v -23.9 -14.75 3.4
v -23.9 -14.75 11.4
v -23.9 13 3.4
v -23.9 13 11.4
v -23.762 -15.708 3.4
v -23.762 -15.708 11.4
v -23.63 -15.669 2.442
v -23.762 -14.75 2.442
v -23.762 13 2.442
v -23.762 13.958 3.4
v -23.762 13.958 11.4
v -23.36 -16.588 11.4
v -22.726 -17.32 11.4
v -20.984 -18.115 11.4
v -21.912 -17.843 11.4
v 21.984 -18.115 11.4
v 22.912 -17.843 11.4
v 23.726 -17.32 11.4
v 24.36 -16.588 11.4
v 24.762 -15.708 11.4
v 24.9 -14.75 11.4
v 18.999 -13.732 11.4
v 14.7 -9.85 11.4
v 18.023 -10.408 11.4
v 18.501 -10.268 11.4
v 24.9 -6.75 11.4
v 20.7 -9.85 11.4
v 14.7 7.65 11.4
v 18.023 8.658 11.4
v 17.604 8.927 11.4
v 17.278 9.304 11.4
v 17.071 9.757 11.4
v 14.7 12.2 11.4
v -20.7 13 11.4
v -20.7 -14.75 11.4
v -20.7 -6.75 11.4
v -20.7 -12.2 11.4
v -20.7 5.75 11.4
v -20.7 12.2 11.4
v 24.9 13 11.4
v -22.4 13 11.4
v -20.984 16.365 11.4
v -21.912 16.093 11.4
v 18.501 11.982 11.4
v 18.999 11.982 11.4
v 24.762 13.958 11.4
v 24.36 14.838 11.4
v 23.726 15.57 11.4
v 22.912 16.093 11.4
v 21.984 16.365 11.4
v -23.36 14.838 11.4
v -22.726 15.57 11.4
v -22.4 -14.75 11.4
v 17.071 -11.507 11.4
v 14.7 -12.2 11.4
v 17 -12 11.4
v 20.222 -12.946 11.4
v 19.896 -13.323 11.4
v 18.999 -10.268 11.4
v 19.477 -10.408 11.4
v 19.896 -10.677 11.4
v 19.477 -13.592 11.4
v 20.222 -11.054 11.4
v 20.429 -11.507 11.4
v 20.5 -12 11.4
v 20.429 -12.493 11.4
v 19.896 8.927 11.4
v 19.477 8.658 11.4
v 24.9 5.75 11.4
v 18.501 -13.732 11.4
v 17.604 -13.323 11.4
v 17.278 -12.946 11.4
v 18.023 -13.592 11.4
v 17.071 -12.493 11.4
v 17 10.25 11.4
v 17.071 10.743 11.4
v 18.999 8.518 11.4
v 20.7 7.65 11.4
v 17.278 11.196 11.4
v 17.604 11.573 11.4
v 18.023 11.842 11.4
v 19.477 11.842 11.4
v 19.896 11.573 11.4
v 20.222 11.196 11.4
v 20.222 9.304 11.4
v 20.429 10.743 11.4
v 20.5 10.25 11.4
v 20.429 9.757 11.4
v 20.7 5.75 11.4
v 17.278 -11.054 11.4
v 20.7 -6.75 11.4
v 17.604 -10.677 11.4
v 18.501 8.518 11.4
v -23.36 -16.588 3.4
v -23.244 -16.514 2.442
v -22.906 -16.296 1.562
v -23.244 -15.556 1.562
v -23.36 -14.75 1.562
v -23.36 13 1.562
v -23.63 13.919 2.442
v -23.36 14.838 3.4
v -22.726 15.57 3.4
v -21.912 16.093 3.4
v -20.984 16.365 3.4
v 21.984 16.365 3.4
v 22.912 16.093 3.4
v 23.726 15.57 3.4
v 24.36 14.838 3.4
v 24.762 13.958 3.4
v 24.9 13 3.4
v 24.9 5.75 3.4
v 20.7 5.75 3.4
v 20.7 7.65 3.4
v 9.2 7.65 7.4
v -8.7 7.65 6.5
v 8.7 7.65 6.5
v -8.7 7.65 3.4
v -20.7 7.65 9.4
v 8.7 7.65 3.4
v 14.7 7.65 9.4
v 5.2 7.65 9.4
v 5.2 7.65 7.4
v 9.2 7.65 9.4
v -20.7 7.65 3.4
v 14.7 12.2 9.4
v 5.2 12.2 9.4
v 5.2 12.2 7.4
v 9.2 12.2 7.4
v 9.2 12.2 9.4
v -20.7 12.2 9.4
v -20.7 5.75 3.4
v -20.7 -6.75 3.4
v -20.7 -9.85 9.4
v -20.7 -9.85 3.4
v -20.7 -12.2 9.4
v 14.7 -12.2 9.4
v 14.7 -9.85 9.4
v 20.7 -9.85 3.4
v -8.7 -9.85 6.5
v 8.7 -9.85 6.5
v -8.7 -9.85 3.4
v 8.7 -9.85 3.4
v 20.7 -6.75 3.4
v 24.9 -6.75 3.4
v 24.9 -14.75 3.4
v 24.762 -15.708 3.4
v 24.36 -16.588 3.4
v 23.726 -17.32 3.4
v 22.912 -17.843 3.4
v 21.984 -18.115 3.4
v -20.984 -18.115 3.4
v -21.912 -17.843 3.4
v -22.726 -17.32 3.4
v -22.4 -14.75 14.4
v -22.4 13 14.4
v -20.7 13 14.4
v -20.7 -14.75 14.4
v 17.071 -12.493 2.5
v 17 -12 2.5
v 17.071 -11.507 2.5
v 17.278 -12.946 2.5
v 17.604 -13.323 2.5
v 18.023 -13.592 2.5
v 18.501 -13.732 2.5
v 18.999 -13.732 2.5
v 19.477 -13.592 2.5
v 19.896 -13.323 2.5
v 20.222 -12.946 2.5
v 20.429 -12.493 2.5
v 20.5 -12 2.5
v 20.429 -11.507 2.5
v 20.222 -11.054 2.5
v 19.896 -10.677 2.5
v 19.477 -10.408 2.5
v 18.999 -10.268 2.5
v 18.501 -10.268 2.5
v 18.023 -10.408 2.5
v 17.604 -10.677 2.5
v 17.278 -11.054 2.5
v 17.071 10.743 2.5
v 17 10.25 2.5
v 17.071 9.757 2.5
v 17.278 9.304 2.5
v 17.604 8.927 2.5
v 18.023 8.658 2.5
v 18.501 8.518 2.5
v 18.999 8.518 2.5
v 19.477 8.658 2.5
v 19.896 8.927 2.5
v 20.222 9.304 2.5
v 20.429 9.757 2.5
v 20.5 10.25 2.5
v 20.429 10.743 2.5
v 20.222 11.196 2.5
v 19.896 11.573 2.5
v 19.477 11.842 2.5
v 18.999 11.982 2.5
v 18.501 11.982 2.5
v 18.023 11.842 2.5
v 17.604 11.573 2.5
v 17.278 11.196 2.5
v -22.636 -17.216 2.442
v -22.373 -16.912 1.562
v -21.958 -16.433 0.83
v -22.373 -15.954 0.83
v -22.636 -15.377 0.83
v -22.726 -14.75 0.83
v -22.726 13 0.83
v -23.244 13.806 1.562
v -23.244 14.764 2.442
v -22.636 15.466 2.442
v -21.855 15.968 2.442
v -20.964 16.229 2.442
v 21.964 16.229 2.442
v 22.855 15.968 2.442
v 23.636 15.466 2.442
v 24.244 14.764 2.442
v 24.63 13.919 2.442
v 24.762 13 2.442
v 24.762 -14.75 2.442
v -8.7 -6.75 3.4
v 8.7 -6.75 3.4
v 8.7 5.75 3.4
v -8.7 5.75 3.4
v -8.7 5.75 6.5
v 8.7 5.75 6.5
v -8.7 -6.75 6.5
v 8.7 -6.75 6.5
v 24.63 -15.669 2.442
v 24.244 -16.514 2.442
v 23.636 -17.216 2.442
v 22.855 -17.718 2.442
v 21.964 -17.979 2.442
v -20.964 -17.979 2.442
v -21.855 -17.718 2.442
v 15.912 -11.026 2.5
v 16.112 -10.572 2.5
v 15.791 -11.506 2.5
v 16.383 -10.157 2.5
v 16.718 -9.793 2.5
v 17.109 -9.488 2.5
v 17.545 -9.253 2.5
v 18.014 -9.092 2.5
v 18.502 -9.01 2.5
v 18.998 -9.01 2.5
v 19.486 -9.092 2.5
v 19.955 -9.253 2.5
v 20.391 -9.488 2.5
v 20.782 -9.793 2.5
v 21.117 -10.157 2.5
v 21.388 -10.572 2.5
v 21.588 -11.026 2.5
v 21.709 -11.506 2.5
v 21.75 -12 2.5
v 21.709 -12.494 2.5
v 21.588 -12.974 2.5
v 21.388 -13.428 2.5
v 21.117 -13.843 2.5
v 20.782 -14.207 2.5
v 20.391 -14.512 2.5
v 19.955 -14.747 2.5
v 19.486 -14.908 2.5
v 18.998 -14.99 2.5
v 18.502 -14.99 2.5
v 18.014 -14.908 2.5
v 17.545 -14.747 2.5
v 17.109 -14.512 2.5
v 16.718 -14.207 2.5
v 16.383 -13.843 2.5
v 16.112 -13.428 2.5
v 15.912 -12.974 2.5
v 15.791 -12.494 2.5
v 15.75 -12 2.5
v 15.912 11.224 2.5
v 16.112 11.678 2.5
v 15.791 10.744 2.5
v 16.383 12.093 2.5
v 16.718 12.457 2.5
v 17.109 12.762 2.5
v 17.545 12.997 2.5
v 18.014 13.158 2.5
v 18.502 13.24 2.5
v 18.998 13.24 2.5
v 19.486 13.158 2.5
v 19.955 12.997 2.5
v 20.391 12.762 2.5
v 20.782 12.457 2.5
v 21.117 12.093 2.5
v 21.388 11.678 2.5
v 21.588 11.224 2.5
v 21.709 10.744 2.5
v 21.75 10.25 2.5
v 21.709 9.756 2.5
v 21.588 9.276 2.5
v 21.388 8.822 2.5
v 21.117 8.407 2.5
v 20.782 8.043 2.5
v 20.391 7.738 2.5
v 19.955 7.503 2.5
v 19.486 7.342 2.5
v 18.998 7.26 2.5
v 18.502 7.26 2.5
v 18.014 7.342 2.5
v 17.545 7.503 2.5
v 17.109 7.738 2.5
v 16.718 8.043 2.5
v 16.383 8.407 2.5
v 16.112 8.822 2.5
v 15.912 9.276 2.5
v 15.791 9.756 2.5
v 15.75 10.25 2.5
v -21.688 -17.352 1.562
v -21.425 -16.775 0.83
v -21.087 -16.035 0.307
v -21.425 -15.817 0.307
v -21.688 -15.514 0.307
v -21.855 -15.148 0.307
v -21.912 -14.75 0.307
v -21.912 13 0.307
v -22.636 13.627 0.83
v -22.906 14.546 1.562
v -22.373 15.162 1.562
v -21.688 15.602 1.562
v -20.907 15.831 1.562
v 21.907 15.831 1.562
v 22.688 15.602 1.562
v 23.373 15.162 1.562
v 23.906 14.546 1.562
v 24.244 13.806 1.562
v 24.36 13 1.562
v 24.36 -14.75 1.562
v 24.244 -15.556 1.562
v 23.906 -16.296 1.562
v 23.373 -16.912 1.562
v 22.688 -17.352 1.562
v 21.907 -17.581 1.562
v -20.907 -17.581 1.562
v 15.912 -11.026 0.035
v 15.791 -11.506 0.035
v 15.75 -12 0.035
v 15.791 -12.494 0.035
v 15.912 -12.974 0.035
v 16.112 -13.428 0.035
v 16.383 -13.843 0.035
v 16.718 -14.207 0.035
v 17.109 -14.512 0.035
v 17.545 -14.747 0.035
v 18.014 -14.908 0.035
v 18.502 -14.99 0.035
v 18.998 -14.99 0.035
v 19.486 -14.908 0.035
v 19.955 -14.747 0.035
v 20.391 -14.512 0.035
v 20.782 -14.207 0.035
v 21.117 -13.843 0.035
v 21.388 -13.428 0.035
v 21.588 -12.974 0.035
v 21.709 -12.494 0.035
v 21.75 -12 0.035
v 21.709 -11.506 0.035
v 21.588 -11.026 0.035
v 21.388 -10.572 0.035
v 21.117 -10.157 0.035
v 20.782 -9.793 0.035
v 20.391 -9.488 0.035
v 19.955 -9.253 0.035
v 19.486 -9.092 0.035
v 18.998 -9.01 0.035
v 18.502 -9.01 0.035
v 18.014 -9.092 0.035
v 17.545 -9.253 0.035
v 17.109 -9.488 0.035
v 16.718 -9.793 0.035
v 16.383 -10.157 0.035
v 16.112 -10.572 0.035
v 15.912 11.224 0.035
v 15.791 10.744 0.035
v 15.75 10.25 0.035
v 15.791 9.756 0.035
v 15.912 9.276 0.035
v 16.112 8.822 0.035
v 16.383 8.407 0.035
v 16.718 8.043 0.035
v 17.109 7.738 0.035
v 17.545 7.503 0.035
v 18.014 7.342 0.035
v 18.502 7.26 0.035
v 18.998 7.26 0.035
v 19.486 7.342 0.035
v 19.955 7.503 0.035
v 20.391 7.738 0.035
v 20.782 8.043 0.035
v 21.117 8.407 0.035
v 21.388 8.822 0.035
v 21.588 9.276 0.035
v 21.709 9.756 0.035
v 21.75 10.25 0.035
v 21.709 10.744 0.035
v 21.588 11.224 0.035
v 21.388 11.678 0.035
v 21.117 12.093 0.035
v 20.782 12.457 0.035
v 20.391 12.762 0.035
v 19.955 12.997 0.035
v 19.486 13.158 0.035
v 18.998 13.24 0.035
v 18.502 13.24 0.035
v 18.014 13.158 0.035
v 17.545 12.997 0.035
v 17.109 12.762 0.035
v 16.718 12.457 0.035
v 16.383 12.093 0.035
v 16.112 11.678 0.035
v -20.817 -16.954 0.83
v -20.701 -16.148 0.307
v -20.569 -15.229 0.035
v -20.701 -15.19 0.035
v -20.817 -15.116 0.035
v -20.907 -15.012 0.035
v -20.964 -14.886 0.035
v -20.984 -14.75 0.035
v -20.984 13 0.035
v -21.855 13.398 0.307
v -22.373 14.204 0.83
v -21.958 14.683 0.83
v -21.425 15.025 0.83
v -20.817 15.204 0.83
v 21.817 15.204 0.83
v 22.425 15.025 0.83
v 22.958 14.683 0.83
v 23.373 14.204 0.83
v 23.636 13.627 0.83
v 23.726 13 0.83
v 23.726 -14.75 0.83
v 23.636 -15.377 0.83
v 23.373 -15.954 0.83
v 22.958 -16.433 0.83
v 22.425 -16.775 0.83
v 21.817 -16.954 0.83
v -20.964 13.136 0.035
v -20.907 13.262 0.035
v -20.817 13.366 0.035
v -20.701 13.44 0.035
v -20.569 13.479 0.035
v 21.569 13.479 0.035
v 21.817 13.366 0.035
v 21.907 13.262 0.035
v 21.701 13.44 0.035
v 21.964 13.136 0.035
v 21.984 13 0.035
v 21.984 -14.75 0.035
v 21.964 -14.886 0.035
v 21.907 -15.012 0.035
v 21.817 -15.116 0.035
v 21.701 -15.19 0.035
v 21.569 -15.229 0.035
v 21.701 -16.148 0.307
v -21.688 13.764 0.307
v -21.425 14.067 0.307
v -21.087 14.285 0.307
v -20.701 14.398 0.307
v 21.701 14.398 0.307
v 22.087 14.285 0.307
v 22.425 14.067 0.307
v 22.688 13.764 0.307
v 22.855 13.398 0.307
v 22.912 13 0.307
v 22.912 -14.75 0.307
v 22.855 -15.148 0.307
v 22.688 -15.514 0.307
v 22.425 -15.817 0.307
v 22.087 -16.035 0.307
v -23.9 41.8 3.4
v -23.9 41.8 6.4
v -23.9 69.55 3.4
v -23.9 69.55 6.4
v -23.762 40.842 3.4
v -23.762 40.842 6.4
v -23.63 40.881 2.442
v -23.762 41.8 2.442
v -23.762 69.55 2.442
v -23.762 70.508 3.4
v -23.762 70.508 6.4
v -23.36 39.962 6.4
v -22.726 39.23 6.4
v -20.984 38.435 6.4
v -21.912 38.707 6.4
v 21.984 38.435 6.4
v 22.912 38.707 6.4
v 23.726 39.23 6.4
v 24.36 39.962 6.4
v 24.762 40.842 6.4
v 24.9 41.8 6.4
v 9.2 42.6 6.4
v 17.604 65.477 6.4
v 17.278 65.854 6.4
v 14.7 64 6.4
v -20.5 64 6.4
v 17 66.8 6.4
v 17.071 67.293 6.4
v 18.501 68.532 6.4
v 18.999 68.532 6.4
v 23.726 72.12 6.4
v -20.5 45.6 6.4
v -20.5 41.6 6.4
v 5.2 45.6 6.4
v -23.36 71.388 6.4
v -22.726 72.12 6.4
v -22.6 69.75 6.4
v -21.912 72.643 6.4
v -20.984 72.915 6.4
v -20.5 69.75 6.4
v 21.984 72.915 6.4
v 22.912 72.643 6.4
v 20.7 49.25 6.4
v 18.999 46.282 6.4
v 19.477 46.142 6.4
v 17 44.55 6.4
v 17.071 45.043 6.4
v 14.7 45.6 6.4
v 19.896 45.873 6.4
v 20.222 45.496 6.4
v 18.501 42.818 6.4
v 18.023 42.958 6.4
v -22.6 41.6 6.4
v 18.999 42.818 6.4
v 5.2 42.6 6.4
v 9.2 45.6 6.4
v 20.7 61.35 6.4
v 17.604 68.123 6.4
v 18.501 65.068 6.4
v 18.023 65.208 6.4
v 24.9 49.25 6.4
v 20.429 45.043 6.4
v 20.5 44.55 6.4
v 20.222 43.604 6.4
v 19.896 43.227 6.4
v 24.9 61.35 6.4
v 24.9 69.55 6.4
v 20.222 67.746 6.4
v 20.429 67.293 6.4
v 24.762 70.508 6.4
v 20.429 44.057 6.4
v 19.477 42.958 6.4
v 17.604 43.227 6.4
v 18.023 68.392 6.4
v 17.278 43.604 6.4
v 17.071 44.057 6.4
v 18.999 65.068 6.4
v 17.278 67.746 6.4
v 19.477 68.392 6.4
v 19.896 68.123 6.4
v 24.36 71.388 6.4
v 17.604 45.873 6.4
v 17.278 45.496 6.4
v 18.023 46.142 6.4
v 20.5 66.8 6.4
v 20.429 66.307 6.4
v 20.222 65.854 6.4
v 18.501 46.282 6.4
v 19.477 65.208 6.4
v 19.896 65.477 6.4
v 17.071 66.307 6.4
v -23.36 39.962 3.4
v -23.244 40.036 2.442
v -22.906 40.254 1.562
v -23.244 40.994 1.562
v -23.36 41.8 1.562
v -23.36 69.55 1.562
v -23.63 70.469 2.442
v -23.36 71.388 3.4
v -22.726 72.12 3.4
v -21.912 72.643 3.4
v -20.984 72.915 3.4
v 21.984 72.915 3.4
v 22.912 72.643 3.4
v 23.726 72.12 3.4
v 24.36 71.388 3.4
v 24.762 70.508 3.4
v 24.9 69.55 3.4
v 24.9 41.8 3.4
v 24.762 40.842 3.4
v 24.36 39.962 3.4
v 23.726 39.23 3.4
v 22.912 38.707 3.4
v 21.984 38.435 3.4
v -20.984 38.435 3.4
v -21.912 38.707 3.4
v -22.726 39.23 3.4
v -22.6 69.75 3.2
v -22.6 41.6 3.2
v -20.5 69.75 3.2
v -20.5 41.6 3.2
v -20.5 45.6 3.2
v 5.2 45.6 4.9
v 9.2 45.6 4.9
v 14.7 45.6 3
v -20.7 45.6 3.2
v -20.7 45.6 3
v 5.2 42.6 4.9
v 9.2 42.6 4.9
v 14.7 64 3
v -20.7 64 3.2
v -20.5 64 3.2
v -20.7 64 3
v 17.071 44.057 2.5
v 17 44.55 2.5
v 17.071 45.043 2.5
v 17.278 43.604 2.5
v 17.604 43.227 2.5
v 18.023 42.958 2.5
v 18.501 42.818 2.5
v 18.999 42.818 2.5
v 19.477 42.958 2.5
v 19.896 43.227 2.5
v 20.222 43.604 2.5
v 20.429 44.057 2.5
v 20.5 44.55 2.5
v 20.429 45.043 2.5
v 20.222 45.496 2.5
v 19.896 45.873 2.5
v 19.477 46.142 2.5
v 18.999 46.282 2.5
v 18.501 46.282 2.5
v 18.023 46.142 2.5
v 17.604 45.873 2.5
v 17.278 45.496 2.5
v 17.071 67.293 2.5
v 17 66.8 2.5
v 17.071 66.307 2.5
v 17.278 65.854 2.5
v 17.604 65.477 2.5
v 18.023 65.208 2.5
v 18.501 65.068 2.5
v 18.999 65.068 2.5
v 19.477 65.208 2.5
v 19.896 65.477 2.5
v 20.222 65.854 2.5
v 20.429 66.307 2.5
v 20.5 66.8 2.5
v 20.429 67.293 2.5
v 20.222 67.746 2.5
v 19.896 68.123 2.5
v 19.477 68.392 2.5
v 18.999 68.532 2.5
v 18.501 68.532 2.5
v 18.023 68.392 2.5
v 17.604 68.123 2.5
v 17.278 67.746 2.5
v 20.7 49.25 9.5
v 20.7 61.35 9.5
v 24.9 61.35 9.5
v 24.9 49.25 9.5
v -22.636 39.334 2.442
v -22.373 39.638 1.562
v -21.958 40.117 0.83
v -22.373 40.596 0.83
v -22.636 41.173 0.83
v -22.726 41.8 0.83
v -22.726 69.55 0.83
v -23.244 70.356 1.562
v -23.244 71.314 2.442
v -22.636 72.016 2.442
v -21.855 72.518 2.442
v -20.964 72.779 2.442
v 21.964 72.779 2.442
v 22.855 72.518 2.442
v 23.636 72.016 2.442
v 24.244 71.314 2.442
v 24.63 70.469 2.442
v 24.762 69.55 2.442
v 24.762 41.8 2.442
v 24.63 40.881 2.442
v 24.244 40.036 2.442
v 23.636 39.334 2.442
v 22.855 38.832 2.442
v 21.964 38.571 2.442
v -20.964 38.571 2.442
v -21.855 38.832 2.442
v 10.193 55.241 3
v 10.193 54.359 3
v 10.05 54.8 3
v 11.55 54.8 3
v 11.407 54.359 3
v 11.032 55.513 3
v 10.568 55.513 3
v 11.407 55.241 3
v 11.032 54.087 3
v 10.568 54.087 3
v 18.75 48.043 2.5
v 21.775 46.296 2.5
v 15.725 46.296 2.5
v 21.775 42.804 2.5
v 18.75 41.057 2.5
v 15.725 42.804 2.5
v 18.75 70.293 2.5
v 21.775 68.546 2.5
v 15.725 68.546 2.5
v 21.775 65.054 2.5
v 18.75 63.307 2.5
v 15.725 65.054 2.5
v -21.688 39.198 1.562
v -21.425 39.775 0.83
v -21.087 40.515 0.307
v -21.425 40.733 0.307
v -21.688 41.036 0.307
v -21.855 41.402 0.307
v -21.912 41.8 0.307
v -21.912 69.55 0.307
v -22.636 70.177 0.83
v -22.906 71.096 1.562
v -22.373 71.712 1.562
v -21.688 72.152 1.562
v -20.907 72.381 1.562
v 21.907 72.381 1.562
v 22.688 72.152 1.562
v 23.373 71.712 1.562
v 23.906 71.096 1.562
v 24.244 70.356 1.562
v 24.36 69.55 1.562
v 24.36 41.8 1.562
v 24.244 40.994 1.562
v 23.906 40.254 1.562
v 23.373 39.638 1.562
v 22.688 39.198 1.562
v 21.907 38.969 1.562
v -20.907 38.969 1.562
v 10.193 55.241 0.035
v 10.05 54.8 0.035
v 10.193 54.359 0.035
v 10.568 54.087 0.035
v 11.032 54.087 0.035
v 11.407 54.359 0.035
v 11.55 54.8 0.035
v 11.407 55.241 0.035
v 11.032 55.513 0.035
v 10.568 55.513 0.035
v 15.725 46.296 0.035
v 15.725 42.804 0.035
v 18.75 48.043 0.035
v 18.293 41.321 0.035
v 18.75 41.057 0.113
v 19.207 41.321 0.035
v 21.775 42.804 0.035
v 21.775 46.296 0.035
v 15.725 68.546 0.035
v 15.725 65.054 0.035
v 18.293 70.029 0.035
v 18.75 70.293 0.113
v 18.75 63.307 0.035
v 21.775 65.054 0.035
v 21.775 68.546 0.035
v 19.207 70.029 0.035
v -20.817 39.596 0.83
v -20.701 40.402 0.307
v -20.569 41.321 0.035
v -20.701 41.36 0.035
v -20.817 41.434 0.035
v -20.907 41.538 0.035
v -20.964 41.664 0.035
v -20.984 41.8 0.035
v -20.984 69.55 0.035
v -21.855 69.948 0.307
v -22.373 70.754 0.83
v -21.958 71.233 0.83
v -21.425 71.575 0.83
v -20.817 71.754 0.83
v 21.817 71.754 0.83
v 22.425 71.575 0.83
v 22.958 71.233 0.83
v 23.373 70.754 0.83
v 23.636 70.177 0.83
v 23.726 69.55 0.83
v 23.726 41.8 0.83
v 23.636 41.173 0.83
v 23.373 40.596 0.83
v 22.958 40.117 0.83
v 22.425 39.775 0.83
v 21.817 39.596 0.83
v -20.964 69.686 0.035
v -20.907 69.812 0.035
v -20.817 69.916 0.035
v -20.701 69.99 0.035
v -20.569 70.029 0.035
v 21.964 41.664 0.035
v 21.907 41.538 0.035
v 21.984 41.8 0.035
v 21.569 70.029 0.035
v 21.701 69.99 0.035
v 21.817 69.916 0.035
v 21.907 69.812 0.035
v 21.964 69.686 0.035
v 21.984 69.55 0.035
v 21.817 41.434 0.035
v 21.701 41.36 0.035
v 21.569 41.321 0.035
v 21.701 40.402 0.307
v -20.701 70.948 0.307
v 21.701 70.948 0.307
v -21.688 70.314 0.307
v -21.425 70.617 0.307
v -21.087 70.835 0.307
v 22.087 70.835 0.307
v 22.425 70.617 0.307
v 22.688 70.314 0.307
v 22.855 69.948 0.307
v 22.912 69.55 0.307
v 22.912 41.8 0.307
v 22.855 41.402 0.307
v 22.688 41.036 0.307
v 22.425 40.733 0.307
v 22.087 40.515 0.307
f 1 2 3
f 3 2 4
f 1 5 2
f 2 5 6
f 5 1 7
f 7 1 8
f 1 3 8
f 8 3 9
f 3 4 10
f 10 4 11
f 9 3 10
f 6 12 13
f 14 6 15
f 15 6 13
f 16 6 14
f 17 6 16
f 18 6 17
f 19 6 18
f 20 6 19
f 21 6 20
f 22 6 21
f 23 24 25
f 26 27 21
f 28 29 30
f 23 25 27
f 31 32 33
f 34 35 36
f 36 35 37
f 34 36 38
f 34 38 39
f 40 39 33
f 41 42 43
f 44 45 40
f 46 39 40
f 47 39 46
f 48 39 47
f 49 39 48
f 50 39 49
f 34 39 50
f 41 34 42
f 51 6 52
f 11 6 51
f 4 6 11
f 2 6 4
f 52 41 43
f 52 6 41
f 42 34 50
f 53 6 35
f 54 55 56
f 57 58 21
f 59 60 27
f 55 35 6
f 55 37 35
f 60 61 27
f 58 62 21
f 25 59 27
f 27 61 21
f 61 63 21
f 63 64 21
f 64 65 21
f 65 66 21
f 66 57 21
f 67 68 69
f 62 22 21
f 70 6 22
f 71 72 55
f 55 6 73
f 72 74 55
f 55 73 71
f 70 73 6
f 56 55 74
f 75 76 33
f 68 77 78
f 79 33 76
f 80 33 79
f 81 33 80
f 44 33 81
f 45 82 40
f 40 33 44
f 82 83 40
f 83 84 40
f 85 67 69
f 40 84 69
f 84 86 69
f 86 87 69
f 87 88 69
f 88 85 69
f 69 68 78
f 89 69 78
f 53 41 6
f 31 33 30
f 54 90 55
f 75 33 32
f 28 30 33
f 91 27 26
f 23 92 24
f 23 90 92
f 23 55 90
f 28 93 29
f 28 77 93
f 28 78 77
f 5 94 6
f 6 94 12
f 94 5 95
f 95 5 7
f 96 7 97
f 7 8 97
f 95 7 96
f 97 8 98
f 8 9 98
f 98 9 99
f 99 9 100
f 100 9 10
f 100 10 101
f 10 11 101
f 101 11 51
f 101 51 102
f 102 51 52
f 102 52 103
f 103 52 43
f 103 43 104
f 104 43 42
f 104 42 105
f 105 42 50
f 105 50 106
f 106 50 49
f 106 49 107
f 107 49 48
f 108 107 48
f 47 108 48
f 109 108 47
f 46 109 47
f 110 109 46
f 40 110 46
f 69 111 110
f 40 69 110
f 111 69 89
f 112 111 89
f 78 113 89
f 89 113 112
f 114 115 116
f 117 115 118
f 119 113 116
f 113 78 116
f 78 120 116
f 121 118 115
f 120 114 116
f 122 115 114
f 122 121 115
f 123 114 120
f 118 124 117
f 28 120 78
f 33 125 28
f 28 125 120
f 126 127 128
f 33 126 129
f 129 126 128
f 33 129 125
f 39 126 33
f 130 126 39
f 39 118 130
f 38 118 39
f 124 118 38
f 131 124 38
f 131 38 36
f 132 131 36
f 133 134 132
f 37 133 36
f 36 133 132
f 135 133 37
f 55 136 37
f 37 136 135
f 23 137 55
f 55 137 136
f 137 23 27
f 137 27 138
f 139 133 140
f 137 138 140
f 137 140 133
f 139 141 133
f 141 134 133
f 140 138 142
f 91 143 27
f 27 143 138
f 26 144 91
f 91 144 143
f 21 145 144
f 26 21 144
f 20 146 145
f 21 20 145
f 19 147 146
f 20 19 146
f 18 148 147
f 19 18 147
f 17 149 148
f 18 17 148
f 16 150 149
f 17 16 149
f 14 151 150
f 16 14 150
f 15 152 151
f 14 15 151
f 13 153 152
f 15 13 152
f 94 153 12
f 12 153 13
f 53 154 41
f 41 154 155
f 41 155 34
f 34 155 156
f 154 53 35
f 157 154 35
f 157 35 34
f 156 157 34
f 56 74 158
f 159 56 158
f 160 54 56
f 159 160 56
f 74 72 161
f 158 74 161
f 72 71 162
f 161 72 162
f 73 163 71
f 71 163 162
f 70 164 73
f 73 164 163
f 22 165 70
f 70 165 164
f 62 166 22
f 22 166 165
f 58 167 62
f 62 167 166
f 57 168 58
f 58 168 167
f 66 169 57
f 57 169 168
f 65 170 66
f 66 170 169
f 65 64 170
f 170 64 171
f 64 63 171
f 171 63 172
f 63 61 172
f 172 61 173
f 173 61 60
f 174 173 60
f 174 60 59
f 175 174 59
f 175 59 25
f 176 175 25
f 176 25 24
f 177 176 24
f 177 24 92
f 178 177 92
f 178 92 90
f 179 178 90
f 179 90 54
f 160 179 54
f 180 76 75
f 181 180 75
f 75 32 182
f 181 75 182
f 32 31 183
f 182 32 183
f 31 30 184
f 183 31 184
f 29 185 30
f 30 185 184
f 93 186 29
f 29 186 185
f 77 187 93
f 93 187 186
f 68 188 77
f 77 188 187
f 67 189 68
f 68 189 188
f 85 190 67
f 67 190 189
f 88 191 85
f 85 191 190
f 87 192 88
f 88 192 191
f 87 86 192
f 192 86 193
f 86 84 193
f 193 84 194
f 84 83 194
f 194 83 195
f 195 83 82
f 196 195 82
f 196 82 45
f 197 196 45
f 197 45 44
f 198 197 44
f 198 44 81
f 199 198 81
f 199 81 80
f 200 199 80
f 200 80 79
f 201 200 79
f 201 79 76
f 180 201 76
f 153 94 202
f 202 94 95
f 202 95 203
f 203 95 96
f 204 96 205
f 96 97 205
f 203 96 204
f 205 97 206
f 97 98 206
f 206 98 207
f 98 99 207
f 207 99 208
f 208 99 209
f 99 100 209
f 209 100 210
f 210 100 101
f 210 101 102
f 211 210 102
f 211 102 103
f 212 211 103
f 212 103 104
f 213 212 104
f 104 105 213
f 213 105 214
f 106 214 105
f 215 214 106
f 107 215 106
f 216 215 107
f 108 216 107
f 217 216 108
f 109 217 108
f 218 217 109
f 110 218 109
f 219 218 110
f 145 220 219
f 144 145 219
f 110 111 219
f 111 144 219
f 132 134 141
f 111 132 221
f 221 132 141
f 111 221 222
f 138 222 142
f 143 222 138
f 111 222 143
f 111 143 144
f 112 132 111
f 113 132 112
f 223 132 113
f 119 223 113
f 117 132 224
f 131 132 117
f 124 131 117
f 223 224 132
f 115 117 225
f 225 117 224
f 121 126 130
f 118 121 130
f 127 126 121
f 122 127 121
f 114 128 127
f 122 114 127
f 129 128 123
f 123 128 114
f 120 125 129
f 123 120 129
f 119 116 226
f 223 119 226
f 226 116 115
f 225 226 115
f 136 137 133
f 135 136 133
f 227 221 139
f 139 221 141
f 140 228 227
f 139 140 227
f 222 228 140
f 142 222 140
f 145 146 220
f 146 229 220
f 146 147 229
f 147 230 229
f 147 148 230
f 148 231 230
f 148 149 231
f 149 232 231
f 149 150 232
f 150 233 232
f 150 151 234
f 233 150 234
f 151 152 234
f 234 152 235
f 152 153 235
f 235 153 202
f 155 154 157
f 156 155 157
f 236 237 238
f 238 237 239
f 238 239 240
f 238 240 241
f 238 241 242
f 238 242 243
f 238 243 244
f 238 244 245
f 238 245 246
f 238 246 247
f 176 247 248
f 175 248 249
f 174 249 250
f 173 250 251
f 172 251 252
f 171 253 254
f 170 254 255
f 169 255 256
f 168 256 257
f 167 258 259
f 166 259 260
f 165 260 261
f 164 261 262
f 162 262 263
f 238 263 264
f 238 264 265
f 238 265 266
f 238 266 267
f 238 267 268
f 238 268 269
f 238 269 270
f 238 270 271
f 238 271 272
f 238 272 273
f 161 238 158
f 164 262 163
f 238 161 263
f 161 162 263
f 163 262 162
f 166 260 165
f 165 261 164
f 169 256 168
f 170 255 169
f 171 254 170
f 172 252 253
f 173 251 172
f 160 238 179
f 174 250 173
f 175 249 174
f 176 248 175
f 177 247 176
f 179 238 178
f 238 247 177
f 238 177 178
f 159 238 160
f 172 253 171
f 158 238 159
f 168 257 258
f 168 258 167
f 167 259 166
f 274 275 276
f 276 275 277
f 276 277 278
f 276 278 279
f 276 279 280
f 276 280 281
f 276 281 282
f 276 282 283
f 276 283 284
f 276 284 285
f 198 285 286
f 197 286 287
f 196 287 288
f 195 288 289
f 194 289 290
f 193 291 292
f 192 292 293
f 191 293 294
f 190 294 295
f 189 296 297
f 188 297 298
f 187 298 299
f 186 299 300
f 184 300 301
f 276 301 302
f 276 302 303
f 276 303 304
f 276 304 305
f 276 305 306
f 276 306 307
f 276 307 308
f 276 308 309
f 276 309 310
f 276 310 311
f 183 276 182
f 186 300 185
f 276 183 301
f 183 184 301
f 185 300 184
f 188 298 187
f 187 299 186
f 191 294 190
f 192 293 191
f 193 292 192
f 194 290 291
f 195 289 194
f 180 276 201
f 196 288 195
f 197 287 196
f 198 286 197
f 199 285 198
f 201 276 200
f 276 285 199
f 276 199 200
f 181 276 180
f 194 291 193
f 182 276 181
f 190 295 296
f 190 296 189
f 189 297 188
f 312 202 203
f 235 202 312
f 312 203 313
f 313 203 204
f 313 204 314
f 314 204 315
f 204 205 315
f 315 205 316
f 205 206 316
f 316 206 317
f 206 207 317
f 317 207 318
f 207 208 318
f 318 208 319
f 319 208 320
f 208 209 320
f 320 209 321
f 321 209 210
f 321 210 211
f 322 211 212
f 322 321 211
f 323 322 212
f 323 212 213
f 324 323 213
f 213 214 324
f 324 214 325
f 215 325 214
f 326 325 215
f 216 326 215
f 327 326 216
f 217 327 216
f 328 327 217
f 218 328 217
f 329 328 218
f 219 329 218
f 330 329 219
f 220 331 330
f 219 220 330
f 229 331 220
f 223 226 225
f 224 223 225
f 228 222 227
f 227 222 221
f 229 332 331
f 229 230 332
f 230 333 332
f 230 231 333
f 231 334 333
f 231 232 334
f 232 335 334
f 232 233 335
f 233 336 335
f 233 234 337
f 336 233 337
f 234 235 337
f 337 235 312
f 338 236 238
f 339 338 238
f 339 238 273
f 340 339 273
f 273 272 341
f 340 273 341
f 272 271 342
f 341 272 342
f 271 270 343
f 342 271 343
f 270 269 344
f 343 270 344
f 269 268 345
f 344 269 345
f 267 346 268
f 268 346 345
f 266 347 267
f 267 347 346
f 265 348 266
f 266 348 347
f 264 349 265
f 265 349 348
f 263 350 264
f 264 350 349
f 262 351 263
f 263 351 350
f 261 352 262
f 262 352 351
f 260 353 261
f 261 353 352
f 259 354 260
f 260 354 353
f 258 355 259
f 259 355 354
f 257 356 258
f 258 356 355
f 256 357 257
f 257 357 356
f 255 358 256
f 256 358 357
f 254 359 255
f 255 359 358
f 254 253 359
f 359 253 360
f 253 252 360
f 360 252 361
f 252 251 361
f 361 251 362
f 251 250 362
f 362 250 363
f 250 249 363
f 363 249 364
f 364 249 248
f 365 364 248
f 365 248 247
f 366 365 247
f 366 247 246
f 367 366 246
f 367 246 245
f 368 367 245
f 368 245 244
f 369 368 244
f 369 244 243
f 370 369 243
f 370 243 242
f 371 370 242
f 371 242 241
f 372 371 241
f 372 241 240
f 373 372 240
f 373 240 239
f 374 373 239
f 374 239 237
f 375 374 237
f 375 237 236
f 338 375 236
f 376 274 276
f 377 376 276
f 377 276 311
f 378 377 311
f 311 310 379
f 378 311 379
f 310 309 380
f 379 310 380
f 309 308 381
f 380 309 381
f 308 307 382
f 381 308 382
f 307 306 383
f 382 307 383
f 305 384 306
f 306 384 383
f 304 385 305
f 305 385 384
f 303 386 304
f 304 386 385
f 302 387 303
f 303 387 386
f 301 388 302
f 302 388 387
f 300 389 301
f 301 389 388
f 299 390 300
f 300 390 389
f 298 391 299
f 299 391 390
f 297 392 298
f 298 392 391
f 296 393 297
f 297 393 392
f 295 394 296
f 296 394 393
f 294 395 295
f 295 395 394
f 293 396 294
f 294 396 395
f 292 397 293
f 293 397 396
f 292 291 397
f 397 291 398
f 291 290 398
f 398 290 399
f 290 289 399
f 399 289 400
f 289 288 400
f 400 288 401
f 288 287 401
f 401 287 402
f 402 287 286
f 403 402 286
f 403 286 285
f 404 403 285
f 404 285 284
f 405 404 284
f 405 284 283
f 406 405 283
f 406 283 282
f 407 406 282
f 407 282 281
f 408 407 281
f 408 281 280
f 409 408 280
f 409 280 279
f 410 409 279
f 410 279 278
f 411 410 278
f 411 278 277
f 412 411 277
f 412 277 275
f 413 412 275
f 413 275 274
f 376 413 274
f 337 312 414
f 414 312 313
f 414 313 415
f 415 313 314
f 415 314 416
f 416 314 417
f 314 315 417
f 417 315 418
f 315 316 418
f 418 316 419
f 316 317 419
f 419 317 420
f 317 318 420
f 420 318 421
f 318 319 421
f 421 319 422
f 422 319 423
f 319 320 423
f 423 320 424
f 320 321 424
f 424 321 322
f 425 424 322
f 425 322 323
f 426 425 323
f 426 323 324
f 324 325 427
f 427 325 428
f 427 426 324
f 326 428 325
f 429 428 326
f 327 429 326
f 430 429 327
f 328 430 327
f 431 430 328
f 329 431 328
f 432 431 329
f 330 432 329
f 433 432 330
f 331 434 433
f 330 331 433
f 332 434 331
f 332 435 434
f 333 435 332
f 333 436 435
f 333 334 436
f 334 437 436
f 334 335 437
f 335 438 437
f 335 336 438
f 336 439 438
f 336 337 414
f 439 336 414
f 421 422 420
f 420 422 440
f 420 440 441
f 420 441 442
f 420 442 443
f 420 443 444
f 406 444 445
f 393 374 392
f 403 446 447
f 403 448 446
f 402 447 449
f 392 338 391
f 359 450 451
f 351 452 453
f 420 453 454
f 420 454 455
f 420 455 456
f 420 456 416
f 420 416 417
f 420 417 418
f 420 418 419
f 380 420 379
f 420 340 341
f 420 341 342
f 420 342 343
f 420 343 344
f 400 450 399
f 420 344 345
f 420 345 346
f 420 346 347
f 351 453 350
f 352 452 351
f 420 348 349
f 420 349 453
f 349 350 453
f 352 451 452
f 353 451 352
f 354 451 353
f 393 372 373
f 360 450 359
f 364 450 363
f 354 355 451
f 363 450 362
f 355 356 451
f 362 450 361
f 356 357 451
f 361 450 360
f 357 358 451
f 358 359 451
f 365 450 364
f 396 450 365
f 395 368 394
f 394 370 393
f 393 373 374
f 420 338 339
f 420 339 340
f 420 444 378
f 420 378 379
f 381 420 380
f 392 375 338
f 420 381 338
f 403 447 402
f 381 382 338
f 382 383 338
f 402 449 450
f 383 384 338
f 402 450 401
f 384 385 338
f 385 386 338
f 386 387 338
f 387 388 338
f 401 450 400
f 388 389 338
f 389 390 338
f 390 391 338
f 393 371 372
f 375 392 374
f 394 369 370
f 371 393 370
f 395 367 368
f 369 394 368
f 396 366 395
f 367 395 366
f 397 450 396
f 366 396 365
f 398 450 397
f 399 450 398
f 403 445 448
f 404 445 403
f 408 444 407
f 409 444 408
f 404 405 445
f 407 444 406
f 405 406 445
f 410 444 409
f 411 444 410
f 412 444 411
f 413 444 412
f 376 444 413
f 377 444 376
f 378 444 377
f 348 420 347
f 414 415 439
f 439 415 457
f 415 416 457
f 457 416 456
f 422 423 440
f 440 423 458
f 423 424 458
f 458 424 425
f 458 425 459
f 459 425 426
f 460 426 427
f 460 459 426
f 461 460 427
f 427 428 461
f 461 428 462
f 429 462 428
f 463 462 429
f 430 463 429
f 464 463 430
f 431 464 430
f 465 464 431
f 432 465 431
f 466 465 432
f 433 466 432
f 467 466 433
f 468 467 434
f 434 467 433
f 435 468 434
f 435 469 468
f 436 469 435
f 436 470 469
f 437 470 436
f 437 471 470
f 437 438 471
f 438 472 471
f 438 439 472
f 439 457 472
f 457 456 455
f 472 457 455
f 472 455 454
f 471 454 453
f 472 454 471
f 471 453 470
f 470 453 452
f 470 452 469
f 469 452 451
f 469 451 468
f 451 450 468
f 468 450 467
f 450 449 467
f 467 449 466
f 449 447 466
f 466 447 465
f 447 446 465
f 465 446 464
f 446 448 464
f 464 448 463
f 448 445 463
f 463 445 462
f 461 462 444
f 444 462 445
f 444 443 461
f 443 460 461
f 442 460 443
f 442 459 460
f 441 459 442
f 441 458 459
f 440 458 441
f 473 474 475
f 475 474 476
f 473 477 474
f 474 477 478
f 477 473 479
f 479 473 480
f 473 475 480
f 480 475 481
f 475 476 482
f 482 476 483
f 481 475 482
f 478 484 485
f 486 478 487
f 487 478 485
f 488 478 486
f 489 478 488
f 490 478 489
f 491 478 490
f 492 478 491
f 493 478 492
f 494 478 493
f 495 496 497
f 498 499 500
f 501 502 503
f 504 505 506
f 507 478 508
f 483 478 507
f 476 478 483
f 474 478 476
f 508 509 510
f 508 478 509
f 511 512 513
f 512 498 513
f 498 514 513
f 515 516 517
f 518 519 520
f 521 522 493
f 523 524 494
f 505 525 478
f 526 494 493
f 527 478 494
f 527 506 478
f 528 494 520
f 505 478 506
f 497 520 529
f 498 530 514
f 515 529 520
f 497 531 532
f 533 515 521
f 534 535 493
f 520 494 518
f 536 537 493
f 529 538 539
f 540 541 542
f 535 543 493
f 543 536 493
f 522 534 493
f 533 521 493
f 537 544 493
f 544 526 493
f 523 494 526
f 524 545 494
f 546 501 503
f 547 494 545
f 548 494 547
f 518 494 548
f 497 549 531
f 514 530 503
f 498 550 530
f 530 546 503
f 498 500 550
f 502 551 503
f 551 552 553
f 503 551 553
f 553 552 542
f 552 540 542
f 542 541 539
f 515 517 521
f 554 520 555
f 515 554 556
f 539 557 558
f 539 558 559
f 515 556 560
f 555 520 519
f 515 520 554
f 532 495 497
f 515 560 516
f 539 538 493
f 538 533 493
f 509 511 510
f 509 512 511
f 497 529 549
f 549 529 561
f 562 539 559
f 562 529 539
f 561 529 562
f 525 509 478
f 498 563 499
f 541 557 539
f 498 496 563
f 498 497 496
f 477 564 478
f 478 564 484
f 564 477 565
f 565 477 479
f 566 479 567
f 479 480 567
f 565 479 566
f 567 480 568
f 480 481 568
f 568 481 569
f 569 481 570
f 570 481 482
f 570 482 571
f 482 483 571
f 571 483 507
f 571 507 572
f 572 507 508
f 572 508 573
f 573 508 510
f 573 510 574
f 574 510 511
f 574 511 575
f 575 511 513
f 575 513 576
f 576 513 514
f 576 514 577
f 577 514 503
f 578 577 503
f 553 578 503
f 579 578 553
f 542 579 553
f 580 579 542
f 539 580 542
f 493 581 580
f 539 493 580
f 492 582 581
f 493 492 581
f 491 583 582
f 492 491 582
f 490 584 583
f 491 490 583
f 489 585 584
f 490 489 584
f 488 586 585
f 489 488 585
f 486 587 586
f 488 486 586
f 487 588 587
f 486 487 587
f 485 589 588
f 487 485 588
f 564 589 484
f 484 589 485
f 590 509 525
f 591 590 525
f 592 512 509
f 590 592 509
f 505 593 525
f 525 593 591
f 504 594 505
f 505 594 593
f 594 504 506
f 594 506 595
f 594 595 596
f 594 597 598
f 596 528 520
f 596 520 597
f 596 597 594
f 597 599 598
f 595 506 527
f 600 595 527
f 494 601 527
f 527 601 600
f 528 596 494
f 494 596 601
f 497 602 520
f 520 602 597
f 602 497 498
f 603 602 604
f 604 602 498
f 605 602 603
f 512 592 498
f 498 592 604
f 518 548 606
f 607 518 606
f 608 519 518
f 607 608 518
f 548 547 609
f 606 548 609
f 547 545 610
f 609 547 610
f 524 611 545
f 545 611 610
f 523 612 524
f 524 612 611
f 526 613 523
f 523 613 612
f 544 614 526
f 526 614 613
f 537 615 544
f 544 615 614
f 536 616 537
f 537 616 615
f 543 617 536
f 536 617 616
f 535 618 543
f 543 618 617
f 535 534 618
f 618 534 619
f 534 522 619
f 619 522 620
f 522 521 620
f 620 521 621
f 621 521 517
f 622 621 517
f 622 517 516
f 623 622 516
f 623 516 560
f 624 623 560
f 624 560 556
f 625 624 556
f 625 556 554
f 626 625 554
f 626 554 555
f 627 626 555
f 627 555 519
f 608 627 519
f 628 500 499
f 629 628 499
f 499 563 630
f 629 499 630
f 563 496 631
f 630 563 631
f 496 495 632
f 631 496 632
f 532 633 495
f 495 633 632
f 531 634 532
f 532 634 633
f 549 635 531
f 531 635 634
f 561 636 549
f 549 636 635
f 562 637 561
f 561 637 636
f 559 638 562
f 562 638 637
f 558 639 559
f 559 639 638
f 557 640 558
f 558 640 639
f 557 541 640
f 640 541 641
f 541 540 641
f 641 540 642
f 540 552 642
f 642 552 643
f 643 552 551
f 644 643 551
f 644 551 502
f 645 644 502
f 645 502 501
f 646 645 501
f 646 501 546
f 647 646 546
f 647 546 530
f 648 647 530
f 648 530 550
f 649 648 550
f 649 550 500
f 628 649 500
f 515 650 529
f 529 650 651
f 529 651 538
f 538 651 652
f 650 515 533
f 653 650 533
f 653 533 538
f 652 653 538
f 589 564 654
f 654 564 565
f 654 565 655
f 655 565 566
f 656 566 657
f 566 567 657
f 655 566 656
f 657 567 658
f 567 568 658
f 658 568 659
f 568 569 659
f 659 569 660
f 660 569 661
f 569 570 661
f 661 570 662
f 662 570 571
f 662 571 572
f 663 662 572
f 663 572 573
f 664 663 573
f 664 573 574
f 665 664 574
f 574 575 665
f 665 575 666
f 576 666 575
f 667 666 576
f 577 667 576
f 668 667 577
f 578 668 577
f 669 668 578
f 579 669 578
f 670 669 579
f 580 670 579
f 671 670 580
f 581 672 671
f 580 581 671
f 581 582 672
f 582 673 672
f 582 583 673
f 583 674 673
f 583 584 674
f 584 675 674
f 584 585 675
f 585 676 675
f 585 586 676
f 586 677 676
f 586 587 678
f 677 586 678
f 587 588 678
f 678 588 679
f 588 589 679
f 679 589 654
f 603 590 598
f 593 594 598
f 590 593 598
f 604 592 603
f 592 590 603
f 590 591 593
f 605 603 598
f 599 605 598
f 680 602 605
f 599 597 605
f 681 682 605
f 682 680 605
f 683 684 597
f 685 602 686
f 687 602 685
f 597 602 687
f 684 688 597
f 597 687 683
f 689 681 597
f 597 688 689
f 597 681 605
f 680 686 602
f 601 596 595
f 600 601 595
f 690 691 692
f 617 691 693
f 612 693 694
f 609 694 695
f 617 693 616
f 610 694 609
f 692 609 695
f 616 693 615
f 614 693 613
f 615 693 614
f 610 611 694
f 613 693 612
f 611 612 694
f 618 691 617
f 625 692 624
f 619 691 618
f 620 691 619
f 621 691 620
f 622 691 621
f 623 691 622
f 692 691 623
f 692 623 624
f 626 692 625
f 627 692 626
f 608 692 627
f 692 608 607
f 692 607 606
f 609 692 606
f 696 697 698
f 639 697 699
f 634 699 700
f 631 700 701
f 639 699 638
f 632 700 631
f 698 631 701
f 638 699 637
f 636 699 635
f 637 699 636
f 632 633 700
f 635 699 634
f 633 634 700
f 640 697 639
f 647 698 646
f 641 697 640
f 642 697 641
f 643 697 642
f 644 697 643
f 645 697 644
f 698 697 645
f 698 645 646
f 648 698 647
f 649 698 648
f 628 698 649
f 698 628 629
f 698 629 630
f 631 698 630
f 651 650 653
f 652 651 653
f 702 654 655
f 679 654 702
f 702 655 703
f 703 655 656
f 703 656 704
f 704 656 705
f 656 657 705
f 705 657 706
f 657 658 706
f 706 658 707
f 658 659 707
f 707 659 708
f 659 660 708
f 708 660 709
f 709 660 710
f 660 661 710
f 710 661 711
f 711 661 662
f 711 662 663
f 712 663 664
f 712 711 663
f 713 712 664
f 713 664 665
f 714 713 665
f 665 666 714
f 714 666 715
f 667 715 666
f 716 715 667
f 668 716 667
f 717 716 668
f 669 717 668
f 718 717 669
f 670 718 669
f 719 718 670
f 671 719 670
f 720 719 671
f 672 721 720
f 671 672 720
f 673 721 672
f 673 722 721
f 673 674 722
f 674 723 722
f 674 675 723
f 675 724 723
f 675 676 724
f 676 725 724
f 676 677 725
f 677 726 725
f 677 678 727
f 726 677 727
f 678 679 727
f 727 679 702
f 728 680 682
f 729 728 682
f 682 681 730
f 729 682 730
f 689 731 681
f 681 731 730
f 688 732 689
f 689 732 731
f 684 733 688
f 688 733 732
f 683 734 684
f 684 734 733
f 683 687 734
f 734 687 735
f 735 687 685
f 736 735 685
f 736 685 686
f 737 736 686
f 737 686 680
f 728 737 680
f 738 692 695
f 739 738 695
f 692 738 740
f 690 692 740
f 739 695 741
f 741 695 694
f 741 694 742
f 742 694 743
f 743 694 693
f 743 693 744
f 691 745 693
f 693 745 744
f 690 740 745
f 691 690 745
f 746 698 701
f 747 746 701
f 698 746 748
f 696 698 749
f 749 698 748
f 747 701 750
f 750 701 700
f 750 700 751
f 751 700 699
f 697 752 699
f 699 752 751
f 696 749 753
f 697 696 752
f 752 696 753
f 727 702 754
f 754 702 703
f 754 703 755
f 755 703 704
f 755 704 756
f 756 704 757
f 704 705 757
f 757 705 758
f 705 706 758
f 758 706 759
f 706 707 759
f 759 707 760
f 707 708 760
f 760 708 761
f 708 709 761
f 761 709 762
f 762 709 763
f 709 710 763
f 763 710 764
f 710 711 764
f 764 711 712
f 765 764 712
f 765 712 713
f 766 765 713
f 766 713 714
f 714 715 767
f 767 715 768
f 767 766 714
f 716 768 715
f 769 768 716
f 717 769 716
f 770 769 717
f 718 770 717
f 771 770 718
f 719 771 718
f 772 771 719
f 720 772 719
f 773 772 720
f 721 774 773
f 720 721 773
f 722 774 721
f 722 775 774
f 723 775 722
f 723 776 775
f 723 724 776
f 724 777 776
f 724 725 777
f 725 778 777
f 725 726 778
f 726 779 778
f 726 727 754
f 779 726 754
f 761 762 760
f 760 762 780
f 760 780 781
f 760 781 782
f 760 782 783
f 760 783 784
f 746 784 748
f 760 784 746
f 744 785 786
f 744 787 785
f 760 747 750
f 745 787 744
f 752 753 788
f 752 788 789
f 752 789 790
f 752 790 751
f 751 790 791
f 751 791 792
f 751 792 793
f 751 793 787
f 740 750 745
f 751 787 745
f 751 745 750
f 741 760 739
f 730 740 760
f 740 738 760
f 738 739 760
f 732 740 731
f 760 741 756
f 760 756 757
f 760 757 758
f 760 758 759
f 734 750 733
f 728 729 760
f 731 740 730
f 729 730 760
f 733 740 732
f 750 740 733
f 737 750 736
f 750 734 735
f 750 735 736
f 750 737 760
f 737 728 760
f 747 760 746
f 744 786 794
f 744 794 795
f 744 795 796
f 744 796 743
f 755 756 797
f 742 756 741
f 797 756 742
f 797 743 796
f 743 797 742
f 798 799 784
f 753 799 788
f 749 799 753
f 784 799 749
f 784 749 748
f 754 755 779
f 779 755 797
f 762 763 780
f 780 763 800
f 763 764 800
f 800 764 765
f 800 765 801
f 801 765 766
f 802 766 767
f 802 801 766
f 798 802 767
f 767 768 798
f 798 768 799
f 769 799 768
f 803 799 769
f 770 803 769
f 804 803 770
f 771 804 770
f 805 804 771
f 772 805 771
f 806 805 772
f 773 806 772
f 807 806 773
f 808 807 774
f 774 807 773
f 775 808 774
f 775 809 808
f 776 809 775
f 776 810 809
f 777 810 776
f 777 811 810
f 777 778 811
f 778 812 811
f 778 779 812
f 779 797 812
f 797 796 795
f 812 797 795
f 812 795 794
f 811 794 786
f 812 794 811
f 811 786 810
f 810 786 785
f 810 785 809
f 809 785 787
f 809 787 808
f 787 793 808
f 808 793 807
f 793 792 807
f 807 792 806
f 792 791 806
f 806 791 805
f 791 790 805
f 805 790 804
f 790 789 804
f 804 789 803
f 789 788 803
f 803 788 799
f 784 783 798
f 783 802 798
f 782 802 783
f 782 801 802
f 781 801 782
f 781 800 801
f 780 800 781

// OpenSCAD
// file: nuts.scad
e = 0.1; // epsilon

// Screws / Nuts
// described by a K-Element vector, offsets defined as follows
nut_diameter_low   = 0;
nut_diameter_high  = 1;
nut_height         = 2;
screw_channel      = 3;
screw_head_channel = 4;
screw_head_height  = 5;
m3 = [ 5.6,  6.5, 2.5, 3.5,  6.0, 2.5];
m4 = [ 7.0,  8.0, 3.5, 4.5,  7.5, 3.0];
m5 = [ 8.0,  9.2, 3.7, 5.0,  9.2, 3.5];
m6 = [10.0, 11.2, 5.0, 6.0, 10.1, 4.0];

module nut_hole (nut, h)
{
    w = (nut [nut_diameter_low] + nut [nut_diameter_high]) / 2;
    translate ([0, 0, h / 2]) difference () {
        cube ([w, 2*w, h], center = true);
        rotate ([0, 0, 30])
            translate ([0, 1.5 * w, 0])
                cube ([2*w, 2*w, h+e], center = true);
        rotate ([0, 0, -30])
            translate ([0, 1.5 * w, 0])
                cube ([2*w, 2*w, h+e], center = true);
        rotate ([0, 0, 30])
            translate ([0, -1.5 * w, 0])
                cube ([2*w, 2*w, h+e], center = true);
        rotate ([0, 0, -30])
            translate ([0, -1.5 * w, 0])
                cube ([2*w, 2*w, h+e], center = true);
    }
}

// A screw channel + cone for a sunk screw, with h2 it can be deeper
// h is the length of the screw, h2 is how far it is sunk in the cone
// height/width only depends on the given nut.
module countersunk_screw_hole (nut, h, h2 = 0)
{
    cylinder
        ( r1 = (nut [screw_head_channel] * 1.1) / 2
        , r2 = (nut [screw_channel]      * 1.1) / 2
        , h  = nut [screw_head_height]  * 1.05
        );
    cylinder (r = nut [screw_channel] / 2, h = h + nut [screw_head_height]);
    translate ([0, 0, -h2])
        cylinder (r = nut [screw_head_channel] * 1.1 / 2, h = h2);
}
//translate ([5, 0, 0])
//    countersunk_screw_hole (m5, 10, 10, $fa = 6, $fs = .5);

// A channel for a sideways embedded nut
// ehf is the factor for the embedded height for the hole of the nut, we
// make it a little wider than nut-height by default, but it can be
// overridden.
// ewf is the factor for the width of the hole (nut diameter * ewf)
module embedded_nut (nut, h, ehf=1.3, ewf=1)
{
    w = (nut [nut_diameter_low] + nut [nut_diameter_high]) / 2;
    union () {
        translate ([0, -w * ewf * 0.5, 0])
            cube ([nut [nut_height] * ehf, w * ewf, h]);
        rotate ([0, 90, 0]) rotate ([0, 0, 30])
            nut_hole (nut, nut [nut_height] * ehf);
    }
}
//embedded_nut (m3, 20);
// main file
include <nuts.scad>;

e=0.0001;

//
// main board:
// length:
mb_l = 35;
mb_w = 24;
mb_h =  1.8;

// serial board:
// Length including soldering points to main board
sb_l = 41;
sb_w = 17.1;

// usb
usb_w = 12.1;
usb_h =  4.5;

// height from lower edge of main board to upper edge of usb:
upper_h = 8.0;
// height of chip over mainboard
lower_h = 3.0;
// height of usb above serial board
sb_usb_h = 3.3;
// height of serial board above main board
sb_mb_h = 2.9;
// now we should have upper_h == sb_usb_h + sb_mb_h + mb_h
// height of chip over mainboard
mb_ch_h = 3;

// distance from mainboard egde to usb, usb facing to us
mb_usb_l = 6.3;
mb_usb_r = 5.8;
// now we should have mb_usb_r + mb_usb_l + usb_w == mb_w :-)

// distance from mainboard edge to edge of serial board
mb_sb_l = 4.0;
mb_sb_r = 2.9;
// now we should have mb_sb_r + mb_sb_l + sb_w == mb_w :-)

// Space for serial connectors
scs = 12;

// Soldering point on mainboard for capacitor (reset)
sp_d = 5.5;
sp_w = 4;

// Soldering space on top of mainboard on both sides
mb_sol = 3;

// Antenna from edge of mainboard
ant_d = 3.5;
ant_r = 1.5/2;

// feature width
fw = 3;

// Additional space to make room for screws
sw = 2;

// Additional space to fit
s = .4;

m3r  = m3 [screw_channel] / 2;
m3hr = m3 [screw_head_channel] / 2;
m3hh = m3 [screw_head_height];

module lower_part
    ( mb_l=mb_l, mb_w=24
    , sb_l=sb_l, sb_w=sb_w
    , usb_w=usb_w, usb_h=usb_h
    , mb_usb_l=mb_usb_l, mb_usb_r=mb_usb_r
    , mb_sb_l=mb_sb_l, mb_sb_r=mb_sb_r
    , upper_h=upper_h, lower_h=lower_h
    , sb_usb_h=sb_usb_h
    , sp_d=sp_d, sp_w=sp_w
    , ant_d=ant_d, ant_r=ant_r
    , fw=fw
    , s=s
    )
{
    difference () {
        minkowski () {
            translate ([sw/4, 0 , 0]) {
                cube ([sb_l + sw/2, mb_w + sw, lower_h], center = true);
                // Same cube again translated to make room for screw
                translate ([0, m3r, 0])
                    cube ([sb_l + sw/2, mb_w + sw, lower_h], center = true);
            }
            sphere (r = fw + s, $fs=1);
        }
        // flat surface
        translate ([0, 0, sb_l + lower_h / 2])
            cube (sb_l * 2, center = true);
        // hole for chip and other parts on mainboard
        // we leave out only the soldering space on sides
        translate ([(mb_l + s)/2 - (sb_l + s)/2, 0, 3/2*lower_h - mb_ch_h - s])
            cube ([mb_l + s, mb_w+s - 2*mb_sol, 2*lower_h], center = true);
        // Space for soldering point on mainboard
        translate ([-sp_w - (sb_l + s)/2 + (mb_l + s) - sp_d, -(mb_w+s)/2, 0])
            cube ([sp_w, (mb_w + s)/2, 2*lower_h]);
        // screw holes
        translate ([sb_l / 2 - m3r,  mb_w / 2 - m3r + m3r, -e]) {
            cylinder (r = m3r, h = 4*lower_h, center = true, $fa=3, $fs=.5);
            translate ([0, 0, -(lower_h/2 + fw + s)])
                nut_hole (m3, m3 [nut_height]);
        }
        translate ([sb_l / 2 - m3r, -mb_w / 2 + m3r, -e]) {
            cylinder (r = m3r, h = 4*lower_h, center = true, $fa=3, $fs=.5);
            translate ([0, 0, -(lower_h/2 + fw + s)])
                nut_hole (m3, m3 [nut_height]);
        }
        // Antenna hole
        translate ([- (sb_l + s)/2 + mb_l - ant_d, 0, 0])
            cylinder (r=ant_r, h=4*lower_h, center=true, $fa=3, $fs=.5);
        // hole for fitting piece from lower part
        translate ([-(fw+s)/4 - (sb_l+s)/2, m3r/2, 0])
            cube ([(fw+s)/2+s, mb_w+sw+m3r+s, lower_h+s], center=true);
    }
    // Fit into USB-hole of other part
    translate ([-(fw+s/2+sw/2)/2+(sb_l)/2+fw+s+sw/2
               , mb_usb_l - mb_usb_r
               , (upper_h-usb_h)/2 + lower_h/2 - s
               ])
        cube ([fw+s/2+sw/2, usb_w, upper_h-usb_h], center=true);
}

module upper_part
    ( mb_l=mb_l, mb_w=24
    , sb_l=sb_l, sb_w=sb_w
    , usb_w=usb_w, usb_h=usb_h
    , mb_usb_l=mb_usb_l, mb_usb_r=mb_usb_r
    , mb_sb_l=mb_sb_l, mb_sb_r=mb_sb_r
    , upper_h=upper_h, lower_h=lower_h
    , sb_usb_h=sb_usb_h
    , sp_d=sp_d, sp_w=sp_w
    , scs=scs
    , fw=fw
    , s=s
    )
{
    difference () {
        minkowski () {
            translate ([sw/4, 0 , 0]) {
                cube ([sb_l + sw/2, mb_w + sw, upper_h], center = true);
                // Same cube again translated to make room for screw
                translate ([0, -m3r, 0])
                    cube ([sb_l + sw/2, mb_w + sw, upper_h], center = true);
            }
            sphere (r = fw + s, $fs=1);
            //cube (2*(fw+s), center=true);
        }
        // USB hole
        translate ([fw - s/2, mb_usb_r - mb_usb_l, upper_h/2])
            cube ([sb_l + 2 * fw, usb_w+s, 2*upper_h], center = true);
        // hole for serial board
        translate ([0, mb_sb_r - mb_sb_l, upper_h/2 + sb_usb_h - s/2])
            cube ([sb_l + s, sb_w+s, 2*upper_h], center = true);
        // hole for main board
        translate ([(mb_l + s)/2 - (sb_l + s)/2, 0, 3/2*upper_h - mb_h - s/2])
            cube ([mb_l + s, mb_w+s, 2*upper_h], center = true);
        // flat surface
        translate ([0, 0, sb_l + upper_h / 2])
            cube (sb_l * 2, center = true);
        // Space for serial connectors
        translate ([scs/2 - (sb_l+s)/2, mb_sb_r - mb_sb_l, upper_h/2])
            cube ([scs, sb_w+s, 2*upper_h], center = true);
        // Same space as for serial connectors on other side
        // for soldering points of usb-connector and a resistor
        translate ([-scs/2 + (sb_l+s)/2, mb_sb_r - mb_sb_l, upper_h/2])
            cube ([scs, sb_w+s, 2*upper_h], center = true);
        // Space for soldering point on mainboard
        translate ([-sp_w - (sb_l + s)/2 + (mb_l + s) - sp_d, 0, 0])
            cube ([sp_w, (mb_w + s)/2, 2*upper_h]);
        // screw holes
        translate ([sb_l / 2 - m3r,  mb_w / 2 - m3r, -e]) {
            cylinder (r = m3r,  h = 2*upper_h, center = true, $fa=3, $fs=.5);
            translate ([0, 0, -(upper_h/2 + fw + s)])
                cylinder (r = m3hr, h = m3hh, $fa=3, $fs=.5);
        }
        translate ([sb_l / 2 - m3r, -mb_w / 2 + m3r - m3r, -e]) {
            cylinder (r = m3r, h = 2*upper_h, center = true, $fa=3, $fs=.5);
            translate ([0, 0, -(upper_h/2 + fw + s)])
                cylinder (r = m3hr, h = m3hh, $fa=3, $fs=.5);
        }
    }
    translate ([-(fw+s)/4 - (sb_l+s)/2, -m3r/2, (lower_h+upper_h)/2-e])
        cube ([(fw+s)/2, mb_w+sw+m3r, lower_h], center=true);
}

show_mount = 0;

if (show_mount) {
    upper_part ();
    translate ([0, 0, upper_h + lower_h])
        rotate ([180, 0, 0])
            lower_part ();
} else {
    translate ([0, 0, upper_h/2 + fw + s])
        upper_part ();
    translate ([0, 2*mb_w + 2*fw + 2*s, lower_h/2 + fw + s])
        lower_part ();
}
